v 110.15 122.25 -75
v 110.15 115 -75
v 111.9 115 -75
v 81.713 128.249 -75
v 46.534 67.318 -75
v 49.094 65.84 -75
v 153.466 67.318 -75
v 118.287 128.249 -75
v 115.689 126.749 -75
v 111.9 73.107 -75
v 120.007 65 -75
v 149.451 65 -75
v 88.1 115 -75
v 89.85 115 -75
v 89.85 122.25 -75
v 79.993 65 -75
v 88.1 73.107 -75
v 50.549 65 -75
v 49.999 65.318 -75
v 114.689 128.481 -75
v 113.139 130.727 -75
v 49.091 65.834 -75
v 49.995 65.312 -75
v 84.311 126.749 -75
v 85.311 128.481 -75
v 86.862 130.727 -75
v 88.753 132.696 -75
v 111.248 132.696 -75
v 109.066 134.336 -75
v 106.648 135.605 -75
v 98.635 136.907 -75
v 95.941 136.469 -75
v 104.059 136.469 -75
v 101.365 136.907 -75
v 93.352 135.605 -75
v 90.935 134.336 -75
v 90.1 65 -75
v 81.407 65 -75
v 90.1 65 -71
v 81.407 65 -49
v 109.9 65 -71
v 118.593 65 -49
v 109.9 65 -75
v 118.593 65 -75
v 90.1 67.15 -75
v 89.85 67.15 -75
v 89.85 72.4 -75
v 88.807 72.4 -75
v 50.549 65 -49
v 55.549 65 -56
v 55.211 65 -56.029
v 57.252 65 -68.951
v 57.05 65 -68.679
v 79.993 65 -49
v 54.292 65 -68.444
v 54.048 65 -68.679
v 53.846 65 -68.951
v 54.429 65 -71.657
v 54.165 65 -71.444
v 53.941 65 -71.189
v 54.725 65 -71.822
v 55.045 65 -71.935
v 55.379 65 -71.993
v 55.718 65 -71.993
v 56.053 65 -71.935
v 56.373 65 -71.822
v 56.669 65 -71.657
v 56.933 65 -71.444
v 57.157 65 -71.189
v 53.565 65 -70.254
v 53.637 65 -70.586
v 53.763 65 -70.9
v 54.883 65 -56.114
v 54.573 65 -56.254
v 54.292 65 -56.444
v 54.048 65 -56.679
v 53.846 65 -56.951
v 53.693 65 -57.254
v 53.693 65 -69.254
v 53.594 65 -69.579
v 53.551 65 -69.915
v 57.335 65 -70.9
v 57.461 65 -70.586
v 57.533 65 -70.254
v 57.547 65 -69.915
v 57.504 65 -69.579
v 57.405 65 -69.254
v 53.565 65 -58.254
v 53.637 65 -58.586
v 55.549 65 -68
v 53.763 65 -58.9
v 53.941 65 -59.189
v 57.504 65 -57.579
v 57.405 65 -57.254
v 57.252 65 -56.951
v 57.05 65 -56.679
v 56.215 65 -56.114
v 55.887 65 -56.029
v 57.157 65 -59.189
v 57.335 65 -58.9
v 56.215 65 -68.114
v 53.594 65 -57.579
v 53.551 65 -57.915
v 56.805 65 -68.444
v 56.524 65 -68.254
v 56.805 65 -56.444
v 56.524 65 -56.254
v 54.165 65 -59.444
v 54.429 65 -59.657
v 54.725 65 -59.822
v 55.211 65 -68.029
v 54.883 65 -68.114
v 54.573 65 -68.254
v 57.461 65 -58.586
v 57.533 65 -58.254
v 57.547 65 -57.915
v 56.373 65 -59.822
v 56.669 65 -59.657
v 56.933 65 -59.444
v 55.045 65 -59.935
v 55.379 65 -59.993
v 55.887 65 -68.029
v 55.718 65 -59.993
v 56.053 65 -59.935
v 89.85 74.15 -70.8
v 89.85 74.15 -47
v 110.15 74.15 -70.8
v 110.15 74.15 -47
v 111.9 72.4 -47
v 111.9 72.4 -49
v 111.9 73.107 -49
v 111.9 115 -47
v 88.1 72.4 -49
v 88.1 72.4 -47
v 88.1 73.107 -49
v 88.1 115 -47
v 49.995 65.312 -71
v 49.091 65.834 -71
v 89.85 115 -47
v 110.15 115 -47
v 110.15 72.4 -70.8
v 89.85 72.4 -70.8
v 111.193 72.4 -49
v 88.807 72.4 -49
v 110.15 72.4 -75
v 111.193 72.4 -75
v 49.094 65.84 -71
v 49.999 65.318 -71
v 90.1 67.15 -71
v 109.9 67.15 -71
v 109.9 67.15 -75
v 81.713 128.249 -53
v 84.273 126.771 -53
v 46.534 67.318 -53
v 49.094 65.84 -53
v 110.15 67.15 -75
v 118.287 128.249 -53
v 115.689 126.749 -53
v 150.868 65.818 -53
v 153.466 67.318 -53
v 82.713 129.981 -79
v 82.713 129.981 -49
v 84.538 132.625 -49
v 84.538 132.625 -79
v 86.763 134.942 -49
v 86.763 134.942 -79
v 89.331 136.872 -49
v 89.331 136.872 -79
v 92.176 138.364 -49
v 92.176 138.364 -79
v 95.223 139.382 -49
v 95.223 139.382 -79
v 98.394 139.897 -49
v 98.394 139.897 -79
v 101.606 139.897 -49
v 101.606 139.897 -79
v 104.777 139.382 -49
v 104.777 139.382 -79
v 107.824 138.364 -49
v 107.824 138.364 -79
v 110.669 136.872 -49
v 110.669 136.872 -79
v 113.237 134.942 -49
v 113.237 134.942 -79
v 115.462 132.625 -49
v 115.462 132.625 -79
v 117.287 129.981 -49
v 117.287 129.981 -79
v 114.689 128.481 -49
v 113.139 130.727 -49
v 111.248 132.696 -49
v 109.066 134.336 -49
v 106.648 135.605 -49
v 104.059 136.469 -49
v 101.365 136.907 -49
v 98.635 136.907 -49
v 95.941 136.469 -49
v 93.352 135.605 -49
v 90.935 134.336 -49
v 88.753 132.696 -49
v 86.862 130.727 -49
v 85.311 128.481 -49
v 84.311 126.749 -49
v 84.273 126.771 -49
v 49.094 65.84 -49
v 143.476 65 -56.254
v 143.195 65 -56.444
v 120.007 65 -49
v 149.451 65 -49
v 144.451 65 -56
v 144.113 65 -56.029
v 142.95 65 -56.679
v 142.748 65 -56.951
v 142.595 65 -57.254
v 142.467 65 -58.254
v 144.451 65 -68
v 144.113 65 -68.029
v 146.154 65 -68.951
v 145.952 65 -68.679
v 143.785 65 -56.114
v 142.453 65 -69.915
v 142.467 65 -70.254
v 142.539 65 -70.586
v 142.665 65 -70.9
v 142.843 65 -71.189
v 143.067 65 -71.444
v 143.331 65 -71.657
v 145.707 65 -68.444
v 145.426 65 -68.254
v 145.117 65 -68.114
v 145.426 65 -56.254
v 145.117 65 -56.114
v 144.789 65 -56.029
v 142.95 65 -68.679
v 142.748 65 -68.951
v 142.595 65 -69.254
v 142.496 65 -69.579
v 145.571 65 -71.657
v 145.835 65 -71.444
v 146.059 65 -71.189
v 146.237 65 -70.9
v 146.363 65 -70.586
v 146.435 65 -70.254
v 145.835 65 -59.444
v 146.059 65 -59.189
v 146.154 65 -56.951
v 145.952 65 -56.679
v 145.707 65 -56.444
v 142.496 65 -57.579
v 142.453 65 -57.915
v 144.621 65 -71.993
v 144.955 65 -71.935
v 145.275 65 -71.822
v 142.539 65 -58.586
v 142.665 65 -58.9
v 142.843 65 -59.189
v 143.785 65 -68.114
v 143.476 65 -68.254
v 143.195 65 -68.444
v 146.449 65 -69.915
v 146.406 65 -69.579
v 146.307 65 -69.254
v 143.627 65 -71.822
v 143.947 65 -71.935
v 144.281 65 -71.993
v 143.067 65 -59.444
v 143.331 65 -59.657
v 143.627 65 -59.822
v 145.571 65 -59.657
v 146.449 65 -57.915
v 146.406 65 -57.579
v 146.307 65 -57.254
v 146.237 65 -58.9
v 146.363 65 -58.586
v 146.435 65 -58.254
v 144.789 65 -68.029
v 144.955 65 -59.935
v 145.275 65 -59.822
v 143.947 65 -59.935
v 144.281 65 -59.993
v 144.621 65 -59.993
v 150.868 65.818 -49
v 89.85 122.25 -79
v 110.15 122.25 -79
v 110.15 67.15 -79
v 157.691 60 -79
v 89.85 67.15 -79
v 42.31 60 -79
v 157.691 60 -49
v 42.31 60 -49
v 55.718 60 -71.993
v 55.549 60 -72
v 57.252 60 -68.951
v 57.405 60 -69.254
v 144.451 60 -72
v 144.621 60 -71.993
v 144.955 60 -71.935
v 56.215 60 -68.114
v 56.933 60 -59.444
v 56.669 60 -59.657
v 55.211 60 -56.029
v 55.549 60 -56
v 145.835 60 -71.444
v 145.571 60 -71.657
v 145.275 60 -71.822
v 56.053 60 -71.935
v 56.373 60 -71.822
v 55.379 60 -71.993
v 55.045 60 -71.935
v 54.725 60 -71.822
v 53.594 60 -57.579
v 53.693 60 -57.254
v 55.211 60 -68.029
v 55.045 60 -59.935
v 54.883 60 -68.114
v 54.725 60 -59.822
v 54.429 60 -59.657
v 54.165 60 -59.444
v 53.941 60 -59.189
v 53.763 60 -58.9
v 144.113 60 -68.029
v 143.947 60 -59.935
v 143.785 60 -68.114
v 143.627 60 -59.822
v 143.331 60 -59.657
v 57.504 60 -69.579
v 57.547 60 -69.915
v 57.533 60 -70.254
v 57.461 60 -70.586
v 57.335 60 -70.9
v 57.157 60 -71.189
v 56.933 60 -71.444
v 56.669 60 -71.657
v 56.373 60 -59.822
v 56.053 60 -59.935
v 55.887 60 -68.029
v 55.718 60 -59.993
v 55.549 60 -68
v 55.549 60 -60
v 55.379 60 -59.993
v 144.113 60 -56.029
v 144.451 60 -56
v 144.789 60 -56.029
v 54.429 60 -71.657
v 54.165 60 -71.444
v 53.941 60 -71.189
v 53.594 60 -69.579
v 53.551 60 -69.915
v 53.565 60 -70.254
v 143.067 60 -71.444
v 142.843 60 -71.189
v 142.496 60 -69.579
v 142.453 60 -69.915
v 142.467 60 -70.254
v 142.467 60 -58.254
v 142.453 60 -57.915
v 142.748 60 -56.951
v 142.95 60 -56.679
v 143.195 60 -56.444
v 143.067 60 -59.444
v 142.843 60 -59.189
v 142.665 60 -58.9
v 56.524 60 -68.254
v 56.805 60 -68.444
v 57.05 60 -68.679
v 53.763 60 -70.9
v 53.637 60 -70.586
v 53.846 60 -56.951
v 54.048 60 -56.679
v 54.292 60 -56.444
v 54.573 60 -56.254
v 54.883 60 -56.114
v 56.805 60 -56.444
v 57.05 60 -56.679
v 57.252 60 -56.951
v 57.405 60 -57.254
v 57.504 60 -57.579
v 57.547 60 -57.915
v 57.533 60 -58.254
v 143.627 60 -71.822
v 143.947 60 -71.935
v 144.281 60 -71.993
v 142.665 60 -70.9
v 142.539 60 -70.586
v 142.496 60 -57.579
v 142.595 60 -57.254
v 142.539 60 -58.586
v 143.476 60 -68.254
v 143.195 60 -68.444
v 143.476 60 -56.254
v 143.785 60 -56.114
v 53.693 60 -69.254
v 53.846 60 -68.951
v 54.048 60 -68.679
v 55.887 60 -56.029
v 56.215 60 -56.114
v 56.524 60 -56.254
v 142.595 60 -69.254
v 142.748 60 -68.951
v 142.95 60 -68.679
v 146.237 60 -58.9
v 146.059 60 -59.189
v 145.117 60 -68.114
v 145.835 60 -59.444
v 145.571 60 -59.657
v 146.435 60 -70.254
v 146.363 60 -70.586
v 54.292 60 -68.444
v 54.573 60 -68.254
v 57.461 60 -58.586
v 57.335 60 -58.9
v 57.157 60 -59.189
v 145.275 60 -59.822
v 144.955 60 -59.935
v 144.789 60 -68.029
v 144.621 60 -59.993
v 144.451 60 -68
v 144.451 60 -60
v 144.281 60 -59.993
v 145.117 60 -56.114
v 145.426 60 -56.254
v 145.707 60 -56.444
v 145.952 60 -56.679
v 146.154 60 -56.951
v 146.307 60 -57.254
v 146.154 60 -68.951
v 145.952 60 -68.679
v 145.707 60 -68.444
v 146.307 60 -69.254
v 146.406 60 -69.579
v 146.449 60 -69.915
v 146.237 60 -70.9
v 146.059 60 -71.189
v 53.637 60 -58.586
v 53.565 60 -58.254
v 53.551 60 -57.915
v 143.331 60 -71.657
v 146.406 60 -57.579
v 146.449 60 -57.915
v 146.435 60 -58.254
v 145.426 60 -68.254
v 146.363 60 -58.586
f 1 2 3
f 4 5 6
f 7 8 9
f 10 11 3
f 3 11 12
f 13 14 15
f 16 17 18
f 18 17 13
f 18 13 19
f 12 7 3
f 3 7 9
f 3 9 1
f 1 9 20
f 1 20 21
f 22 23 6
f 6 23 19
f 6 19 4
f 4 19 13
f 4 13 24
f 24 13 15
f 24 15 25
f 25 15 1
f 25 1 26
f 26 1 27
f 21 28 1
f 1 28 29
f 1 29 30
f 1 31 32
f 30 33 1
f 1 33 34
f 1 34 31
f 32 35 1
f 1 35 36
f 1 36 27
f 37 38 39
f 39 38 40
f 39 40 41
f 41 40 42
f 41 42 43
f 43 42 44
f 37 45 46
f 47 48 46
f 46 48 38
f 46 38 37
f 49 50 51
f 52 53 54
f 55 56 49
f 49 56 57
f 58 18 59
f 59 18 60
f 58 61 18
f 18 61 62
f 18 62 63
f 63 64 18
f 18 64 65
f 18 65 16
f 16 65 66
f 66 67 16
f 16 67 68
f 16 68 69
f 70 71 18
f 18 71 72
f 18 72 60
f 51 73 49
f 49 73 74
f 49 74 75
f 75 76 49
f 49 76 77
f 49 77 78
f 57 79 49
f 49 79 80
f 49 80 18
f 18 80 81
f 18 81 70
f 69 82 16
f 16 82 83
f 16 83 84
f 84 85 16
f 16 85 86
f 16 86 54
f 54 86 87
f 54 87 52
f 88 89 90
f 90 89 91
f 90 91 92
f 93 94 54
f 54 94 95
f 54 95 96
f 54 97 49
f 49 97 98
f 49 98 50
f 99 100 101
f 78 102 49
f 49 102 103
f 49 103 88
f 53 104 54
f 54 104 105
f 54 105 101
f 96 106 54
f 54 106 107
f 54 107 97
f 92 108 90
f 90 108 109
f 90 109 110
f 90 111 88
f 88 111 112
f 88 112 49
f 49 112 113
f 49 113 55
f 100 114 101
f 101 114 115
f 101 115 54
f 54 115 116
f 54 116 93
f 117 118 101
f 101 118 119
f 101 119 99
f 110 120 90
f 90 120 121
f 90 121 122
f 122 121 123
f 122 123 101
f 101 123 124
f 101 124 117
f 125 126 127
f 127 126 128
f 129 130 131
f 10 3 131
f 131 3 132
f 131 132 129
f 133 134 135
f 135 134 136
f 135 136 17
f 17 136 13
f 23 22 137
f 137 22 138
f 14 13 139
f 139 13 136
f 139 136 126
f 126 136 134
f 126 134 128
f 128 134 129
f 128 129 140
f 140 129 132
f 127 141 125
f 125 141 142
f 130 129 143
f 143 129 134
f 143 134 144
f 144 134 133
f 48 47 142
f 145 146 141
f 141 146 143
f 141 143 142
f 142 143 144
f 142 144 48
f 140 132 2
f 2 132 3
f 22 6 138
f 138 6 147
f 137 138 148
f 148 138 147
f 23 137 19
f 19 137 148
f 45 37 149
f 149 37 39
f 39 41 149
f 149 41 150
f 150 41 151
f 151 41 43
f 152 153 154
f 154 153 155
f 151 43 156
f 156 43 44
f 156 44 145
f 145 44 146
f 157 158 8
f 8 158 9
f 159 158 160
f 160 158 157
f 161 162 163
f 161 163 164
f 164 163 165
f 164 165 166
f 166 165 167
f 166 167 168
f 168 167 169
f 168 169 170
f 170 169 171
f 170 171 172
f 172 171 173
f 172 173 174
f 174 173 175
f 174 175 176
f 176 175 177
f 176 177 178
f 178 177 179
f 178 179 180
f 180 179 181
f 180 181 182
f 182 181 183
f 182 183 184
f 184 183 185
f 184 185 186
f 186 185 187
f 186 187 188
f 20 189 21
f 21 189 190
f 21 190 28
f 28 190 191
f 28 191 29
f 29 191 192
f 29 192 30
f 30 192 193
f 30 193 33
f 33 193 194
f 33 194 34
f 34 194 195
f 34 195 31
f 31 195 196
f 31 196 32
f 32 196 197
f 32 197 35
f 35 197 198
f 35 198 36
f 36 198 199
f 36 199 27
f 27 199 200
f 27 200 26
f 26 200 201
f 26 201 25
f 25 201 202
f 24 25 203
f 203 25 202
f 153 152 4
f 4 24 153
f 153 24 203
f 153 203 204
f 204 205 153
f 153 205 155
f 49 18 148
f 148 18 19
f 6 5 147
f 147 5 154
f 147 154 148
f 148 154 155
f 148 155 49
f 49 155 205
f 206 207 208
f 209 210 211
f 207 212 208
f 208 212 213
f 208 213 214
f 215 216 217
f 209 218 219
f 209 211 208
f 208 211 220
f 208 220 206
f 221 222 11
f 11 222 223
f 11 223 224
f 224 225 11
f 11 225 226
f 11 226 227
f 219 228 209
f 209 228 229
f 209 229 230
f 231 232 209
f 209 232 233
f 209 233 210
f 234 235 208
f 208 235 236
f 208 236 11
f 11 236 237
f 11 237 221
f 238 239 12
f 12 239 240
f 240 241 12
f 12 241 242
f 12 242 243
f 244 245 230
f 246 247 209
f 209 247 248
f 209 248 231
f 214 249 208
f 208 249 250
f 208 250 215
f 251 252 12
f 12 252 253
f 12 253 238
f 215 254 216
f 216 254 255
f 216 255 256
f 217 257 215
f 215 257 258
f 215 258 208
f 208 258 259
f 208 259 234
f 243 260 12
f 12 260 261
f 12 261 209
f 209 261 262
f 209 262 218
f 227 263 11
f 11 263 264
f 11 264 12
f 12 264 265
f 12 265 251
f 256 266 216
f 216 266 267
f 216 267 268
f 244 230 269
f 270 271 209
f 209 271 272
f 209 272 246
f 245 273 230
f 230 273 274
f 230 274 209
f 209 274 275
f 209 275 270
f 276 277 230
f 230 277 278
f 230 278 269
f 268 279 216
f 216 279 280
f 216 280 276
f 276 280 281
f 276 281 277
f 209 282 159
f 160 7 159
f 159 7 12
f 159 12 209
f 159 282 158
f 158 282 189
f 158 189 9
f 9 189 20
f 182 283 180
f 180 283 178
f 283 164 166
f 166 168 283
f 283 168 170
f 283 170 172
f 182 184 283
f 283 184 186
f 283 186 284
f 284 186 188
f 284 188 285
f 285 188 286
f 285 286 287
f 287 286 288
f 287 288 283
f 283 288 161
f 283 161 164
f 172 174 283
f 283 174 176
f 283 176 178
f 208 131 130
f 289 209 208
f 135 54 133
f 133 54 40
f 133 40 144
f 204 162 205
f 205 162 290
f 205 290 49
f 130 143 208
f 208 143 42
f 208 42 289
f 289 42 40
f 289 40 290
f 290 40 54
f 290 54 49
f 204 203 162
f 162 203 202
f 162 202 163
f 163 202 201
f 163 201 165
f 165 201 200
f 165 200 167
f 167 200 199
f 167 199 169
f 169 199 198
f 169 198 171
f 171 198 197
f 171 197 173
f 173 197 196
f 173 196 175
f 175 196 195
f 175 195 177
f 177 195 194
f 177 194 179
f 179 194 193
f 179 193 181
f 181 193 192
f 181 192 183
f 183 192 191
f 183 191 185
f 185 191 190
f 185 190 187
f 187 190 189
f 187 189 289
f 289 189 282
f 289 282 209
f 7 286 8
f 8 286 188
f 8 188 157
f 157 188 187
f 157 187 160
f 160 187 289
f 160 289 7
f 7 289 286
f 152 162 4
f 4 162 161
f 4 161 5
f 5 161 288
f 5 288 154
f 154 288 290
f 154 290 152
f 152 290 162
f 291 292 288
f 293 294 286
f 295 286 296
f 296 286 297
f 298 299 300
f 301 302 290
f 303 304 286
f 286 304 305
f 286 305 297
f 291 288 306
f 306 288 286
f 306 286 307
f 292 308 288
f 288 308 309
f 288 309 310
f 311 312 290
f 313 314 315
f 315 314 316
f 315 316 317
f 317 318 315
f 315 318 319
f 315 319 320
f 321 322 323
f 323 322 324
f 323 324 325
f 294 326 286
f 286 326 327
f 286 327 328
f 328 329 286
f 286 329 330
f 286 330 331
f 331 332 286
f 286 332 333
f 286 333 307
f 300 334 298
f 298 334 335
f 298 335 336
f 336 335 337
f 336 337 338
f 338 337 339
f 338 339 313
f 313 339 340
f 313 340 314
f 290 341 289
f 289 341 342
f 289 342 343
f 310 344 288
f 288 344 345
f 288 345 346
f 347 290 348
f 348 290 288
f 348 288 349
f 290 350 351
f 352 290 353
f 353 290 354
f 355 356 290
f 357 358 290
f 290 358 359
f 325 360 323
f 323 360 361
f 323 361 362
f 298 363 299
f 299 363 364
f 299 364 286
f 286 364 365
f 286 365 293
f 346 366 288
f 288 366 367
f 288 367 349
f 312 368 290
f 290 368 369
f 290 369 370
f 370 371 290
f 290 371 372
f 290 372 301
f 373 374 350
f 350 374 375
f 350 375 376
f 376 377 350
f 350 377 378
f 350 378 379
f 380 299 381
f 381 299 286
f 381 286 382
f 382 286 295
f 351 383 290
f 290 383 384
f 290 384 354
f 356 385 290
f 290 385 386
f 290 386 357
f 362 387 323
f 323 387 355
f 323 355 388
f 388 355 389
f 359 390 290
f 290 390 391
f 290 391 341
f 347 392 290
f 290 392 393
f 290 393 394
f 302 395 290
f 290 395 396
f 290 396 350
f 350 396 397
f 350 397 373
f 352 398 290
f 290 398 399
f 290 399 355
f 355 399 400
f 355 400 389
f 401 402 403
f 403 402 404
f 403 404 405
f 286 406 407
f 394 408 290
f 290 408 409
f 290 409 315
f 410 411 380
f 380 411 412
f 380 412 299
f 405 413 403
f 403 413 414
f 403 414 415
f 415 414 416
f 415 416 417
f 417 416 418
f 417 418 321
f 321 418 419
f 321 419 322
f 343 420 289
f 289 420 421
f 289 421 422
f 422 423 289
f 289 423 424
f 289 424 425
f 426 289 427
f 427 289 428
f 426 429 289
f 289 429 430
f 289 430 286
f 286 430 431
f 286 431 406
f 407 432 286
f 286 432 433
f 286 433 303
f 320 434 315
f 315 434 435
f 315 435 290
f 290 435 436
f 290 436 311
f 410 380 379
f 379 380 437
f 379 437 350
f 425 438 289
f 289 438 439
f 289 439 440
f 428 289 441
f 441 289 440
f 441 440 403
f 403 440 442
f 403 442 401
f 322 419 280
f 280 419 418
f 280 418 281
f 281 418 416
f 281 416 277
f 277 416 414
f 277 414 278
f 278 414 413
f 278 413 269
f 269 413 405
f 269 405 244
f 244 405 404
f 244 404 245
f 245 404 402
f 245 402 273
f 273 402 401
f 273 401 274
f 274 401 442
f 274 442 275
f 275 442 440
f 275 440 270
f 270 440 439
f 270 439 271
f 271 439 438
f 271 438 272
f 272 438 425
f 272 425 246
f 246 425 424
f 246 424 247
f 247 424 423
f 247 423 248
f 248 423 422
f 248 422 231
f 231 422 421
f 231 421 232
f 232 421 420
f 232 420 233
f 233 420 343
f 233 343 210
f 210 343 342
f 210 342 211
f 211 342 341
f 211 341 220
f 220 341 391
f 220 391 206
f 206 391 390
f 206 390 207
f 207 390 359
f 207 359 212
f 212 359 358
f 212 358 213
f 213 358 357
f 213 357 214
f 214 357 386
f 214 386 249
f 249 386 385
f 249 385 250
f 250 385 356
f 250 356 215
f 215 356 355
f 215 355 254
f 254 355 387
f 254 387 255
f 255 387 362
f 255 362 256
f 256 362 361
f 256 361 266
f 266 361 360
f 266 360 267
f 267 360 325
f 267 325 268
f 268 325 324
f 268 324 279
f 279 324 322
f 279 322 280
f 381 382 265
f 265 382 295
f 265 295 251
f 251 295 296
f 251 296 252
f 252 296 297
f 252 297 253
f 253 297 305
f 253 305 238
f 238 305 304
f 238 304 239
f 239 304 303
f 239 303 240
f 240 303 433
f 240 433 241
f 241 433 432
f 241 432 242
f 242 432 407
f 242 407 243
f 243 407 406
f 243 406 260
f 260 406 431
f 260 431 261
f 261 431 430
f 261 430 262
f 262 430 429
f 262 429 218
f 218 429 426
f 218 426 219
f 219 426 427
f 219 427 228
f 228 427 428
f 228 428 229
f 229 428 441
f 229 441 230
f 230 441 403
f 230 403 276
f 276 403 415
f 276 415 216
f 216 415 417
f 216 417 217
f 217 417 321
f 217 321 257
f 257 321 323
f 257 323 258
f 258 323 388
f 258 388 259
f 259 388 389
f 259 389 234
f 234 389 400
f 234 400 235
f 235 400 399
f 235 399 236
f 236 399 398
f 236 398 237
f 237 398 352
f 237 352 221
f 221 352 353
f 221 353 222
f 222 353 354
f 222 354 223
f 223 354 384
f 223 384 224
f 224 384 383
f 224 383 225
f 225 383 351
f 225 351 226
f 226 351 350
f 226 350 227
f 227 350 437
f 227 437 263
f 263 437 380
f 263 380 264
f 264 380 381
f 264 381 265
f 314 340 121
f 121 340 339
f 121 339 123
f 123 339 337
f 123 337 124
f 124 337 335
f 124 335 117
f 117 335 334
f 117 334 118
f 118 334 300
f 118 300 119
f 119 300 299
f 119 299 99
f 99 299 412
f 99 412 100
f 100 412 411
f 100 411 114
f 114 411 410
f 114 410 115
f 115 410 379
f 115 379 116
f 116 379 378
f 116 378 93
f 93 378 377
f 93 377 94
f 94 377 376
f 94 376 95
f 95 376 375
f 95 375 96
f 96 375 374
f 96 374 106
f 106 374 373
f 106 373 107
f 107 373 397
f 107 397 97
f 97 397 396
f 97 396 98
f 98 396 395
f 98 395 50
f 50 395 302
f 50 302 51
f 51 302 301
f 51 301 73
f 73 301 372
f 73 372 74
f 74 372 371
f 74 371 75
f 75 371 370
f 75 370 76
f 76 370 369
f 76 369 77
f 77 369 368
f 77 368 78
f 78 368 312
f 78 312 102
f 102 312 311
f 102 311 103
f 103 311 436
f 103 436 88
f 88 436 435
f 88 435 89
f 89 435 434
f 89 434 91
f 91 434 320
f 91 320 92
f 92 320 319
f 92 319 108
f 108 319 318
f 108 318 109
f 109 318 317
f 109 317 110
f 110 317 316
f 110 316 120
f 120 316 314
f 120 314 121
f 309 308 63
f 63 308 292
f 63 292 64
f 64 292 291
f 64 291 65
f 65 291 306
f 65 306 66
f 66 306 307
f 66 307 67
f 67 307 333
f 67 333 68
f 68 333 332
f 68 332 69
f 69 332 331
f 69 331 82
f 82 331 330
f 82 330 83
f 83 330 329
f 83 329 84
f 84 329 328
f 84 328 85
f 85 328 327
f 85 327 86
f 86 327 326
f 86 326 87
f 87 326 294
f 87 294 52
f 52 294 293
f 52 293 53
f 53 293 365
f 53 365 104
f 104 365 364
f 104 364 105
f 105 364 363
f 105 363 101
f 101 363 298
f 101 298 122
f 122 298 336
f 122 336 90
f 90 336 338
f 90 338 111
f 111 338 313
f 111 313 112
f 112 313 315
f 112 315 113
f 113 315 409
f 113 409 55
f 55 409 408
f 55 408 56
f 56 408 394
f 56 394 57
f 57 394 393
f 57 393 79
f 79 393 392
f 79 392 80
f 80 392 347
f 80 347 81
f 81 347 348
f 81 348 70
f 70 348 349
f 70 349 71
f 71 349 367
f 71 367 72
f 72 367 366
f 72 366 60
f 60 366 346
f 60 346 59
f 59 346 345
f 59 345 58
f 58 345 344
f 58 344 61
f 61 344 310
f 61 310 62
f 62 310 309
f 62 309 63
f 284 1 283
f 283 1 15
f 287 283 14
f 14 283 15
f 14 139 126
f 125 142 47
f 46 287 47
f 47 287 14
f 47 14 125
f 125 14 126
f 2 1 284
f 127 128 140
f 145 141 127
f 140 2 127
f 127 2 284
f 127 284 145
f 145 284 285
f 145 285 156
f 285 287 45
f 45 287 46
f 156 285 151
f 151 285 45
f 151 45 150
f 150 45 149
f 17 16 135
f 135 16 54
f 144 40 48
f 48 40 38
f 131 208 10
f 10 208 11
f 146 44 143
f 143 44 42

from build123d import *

# Parameters (mm, degrees)
SKETCH2_W                 = 200
SKETCH2_H                 = 200
BOSS_EXTRUDE2_DEPTH       = 60
BOSS_EXTRUDE3_START       = -38
BOSS_EXTRUDE3_DEPTH       = 41
SKETCH5_W                 = 180
SKETCH5_H                 = 180
CUT_EXTRUDE2_DEPTH        = 50
BOSS_EXTRUDE4_START       = -51.2
BOSS_EXTRUDE4_DEPTH       = 30
CUT_EXTRUDE3_DEPTH        = 35
SKETCH9_R                 = 5
CUT_EXTRUDE4_DEPTH        = 10
CUT_EXTRUDE6_DEPTH        = 26
SKETCH11_W                = 120
SKETCH11_H                = 10
CUT_EXTRUDE7_DEPTH        = 26
SKETCH12_W                = 180
SKETCH12_H                = 50
CUT_EXTRUDE8_DEPTH        = 200
SKETCH13_W                = 180
SKETCH13_H                = 50
CUT_EXTRUDE9_DEPTH        = 200
SKETCH15_W                = 19.8
SKETCH15_H                = 40.6
SKETCH15_R                = 4.016151872
CUT_EXTRUDE11_DEPTH       = 10
BOSS_EXTRUDE5_DEPTH       = 26
SKETCH20_W                = 19.8
SKETCH20_H                = 7
CUT_EXTRUDE14_DEPTH       = 8.2
SKETCH22_W                = 22
SKETCH22_H                = 68.38628635
SKETCH22_W_2              = 33
SKETCH22_H_2              = 70.357034464
CUT_EXTRUDE16_DEPTH       = 6
CUT_EXTRUDE17_DEPTH       = 150
SKETCH24_W                = 190
SKETCH24_H                = 55
CUT_EXTRUDE18_DEPTH       = 200
SKETCH41_W                = 200
SKETCH41_H                = 200
SKETCH41_W_2              = 115.381197846
SKETCH41_H_2              = 110.8
CUT_EXTRUDE25_DEPTH       = 100
CUT_EXTRUDE26_DEPTH       = 26
SKETCH43_R                = 85
BOSS_EXTRUDE9_DEPTH       = 5
CUT_EXTRUDE27_DEPTH       = 11
BOSS_EXTRUDE10_DEPTH      = 4
BOSS_EXTRUDE11_DEPTH      = 24
BOSS_EXTRUDE12_DEPTH      = 26
BOSS_EXTRUDE14_DEPTH      = 4
CUT_EXTRUDE29_DEPTH       = 18
CUT_EXTRUDE30_DEPTH       = 2
CUT_EXTRUDE31_DEPTH       = 2
SKETCH55_W                = 19.8
SKETCH55_H                = 2.410200662
BOSS_EXTRUDE16_DEPTH      = 4
SKETCH56_W                = 22
SKETCH56_H                = 70.356823689
CUT_EXTRUDE32_DEPTH       = 4
BOSS_EXTRUDE17_DEPTH      = 26
BOSS_EXTRUDE18_DEPTH      = 26
BOSS_EXTRUDE19_START      = 170
BOSS_EXTRUDE19_DEPTH      = 10
SKETCH60_R                = 2.45
BOSS_EXTRUDE20_DEPTH      = 9
FILLET1_R                 = 0.3
CUT_EXTRUDE33_START       = -1
SKETCH61_R                = 2.45
SKETCH61_R_2              = 2.375
CUT_EXTRUDE33_DEPTH       = 5.2
FILLET2_R                 = 2
BOSS_EXTRUDE21_START      = 140
BOSS_EXTRUDE21_DEPTH      = 10
SKETCH63_R                = 2.45
BOSS_EXTRUDE22_DEPTH      = 9
FILLET3_R                 = 0.3
FILLET4_R                 = 2
CUT_EXTRUDE34_START       = -1
SKETCH64_R                = 2.45
SKETCH64_R_2              = 2.375
CUT_EXTRUDE34_DEPTH       = 5.2
SKETCH67_R                = 95.168377016
SKETCH67_R_2              = 84.75
CUT_EXTRUDE36_DEPTH       = 5
CUT_EXTRUDE37_DEPTH       = 300
CUT_EXTRUDE37_DEPTH_BACK  = 300
SKETCH70_W                = 122.930258841
SKETCH70_H                = 81.480763568
CUT_EXTRUDE39_DEPTH       = 40
F_4_0MM_DOWEL_HOLE1_D     = 4
F_4_0MM_DOWEL_HOLE1_DEPTH = 10
F_4_0MM_DOWEL_HOLE1_TIP   = 1.201721238
SKETCH75_W                = 20.3
SKETCH75_H                = 48.1
CUT_EXTRUDE40_DEPTH       = 50
SKETCH76_W                = 20.3
SKETCH76_H                = 7
CUT_EXTRUDE41_DEPTH       = 8.2
RIB2_REACH                = 214.968


with BuildPart() as part:
    # Sketch2 → Boss-Extrude2 (new body)
    with BuildSketch(Plane(origin=(0, 0, 0), x_dir=(1, 0, 0), z_dir=(0, 1, 0))):
        with Locations((100, 100)):
            Rectangle(SKETCH2_W, SKETCH2_H)
    extrude(amount=BOSS_EXTRUDE2_DEPTH)

    # Sketch3 → Boss-Extrude3 (add)
    with BuildSketch(Plane.XY.offset(BOSS_EXTRUDE3_START)):
        with BuildLine():
            Line((40, 60), (80.980762114, 130.980762114))
            ThreePointArc((80.980762114, 130.980762114), (100, 141.961524227), (119.019237886, 130.980762114))
            Line((119.019237886, 130.980762114), (160, 60))
            Line((160, 60), (40, 60))
        make_face()
    extrude(amount=-BOSS_EXTRUDE3_DEPTH)

    # Sketch5 → Cut-Extrude2 (cut)
    with BuildSketch(Plane.XZ):
        with Locations((100, -100)):
            Rectangle(SKETCH5_W, SKETCH5_H)
    extrude(amount=-CUT_EXTRUDE2_DEPTH, mode=Mode.SUBTRACT)

    # Sketch7 → Boss-Extrude4 (add)
    with BuildSketch(Plane(origin=(0, 0, -200), x_dir=(-1, 0, 0), z_dir=(0, 0, -1)).offset(BOSS_EXTRUDE4_START)):
        with BuildLine():
            Line((-160, 60), (-40, 60))
            Line((-40, 60), (-80.980762114, 130.980762114))
            ThreePointArc((-80.980762114, 130.980762114), (-100, 141.961524227), (-119.019237886, 130.980762114))
            Line((-119.019237886, 130.980762114), (-160, 60))
        make_face()
    extrude(amount=-BOSS_EXTRUDE4_DEPTH)

    # Sketch8 → Cut-Extrude3 (cut)
    with BuildSketch(Plane.XY.offset(-38)):
        with BuildLine():
            Line((48.660254038, 65), (151.339745962, 65))
            Line((151.339745962, 65), (114.689110868, 128.480762114))
            ThreePointArc((114.689110868, 128.480762114), (100, 136.961524227), (85.310889132, 128.480762114))
            Line((85.310889132, 128.480762114), (48.660254038, 65))
        make_face()
    extrude(amount=-CUT_EXTRUDE3_DEPTH, mode=Mode.SUBTRACT)

    # Sketch9 → Cut-Extrude4 (cut)
    with BuildSketch(Plane.XY.offset(-118.8)):
        with BuildLine():
            Line((95, 141.384773704), (95, 105))
            ThreePointArc((95, 105), (100, 110), (105, 105))
            Line((105, 105), (105, 141.384773704))
            ThreePointArc((105, 141.384773704), (100, 141.961524227), (95, 141.384773704))
        make_face()
        with Locations((100, 105)):
            Circle(SKETCH9_R)
    extrude(amount=-CUT_EXTRUDE4_DEPTH, mode=Mode.SUBTRACT)

    # Sketch10 → Cut-Extrude6 (cut)
    with BuildSketch(Plane(origin=(0, 0, -148.8), x_dir=(-1, 0, 0), z_dir=(0, 0, -1))):
        with BuildLine():
            Line((-110, 105), (-110, 133.700120587))
            ThreePointArc((-110, 133.700120587), (-112.617387787, 131.335555987), (-114.689110868, 128.480762114))
            Line((-114.689110868, 128.480762114), (-151.339745962, 65))
            Line((-151.339745962, 65), (-48.660254038, 65))
            Line((-48.660254038, 65), (-85.310889132, 128.480762114))
            ThreePointArc((-85.310889132, 128.480762114), (-87.382612213, 131.335555987), (-90, 133.700120587))
            Line((-90, 133.700120587), (-90, 105))
            ThreePointArc((-90, 105), (-100, 95), (-110, 105))
        make_face()
    extrude(amount=-CUT_EXTRUDE6_DEPTH, mode=Mode.SUBTRACT)

    # Sketch11 → Cut-Extrude7 (cut)
    with BuildSketch(Plane(origin=(0, 60, 0), x_dir=(1, 0, 0), z_dir=(0, 1, 0))):
        with Locations((100, 113.8)):
            Rectangle(SKETCH11_W, SKETCH11_H)
    extrude(amount=-CUT_EXTRUDE7_DEPTH, mode=Mode.SUBTRACT)

    # Sketch12 → Cut-Extrude8 (cut)
    with BuildSketch(Plane(origin=(200, 0, 0), x_dir=(0, 0, -1), z_dir=(1, 0, 0))):
        with Locations((100, 25)):
            Rectangle(SKETCH12_W, SKETCH12_H)
    extrude(amount=-CUT_EXTRUDE8_DEPTH, mode=Mode.SUBTRACT)

    # Sketch13 → Cut-Extrude9 (cut)
    with BuildSketch(Plane.XY):
        with Locations((100, 25)):
            Rectangle(SKETCH13_W, SKETCH13_H)
    extrude(amount=-CUT_EXTRUDE9_DEPTH, mode=Mode.SUBTRACT)

    # Sketch15 → Cut-Extrude11 (cut)
    with BuildSketch(Plane.XY.offset(-73)):
        with Locations((100, 94.7)):
            Rectangle(SKETCH15_W, SKETCH15_H)
        with Locations((100, 105)):
            Circle(SKETCH15_R, mode=Mode.SUBTRACT)
        with Locations((100, 105)):
            Circle(SKETCH15_R)
    extrude(amount=-CUT_EXTRUDE11_DEPTH, mode=Mode.SUBTRACT)

    # Sketch16 → Boss-Extrude5 (add)
    with BuildSketch(Plane.XY.offset(-73)):
        Polygon((88.1, 115), (88.1, 72.4), (111.9, 72.4), (111.9, 115), (109.9, 115), (109.9, 74.4), (90.1, 74.4), (90.1, 115), align=None)
    extrude(amount=BOSS_EXTRUDE5_DEPTH)

    # Sketch20 → Cut-Extrude14 (cut)
    with BuildSketch(Plane(origin=(0, 0, -79), x_dir=(-1, 0, 0), z_dir=(0, 0, -1))):
        with Locations((-100, 118.5)):
            Rectangle(SKETCH20_W, SKETCH20_H)
        with Locations((-100, 70.9)):
            Rectangle(SKETCH20_W, SKETCH20_H)
    extrude(amount=-CUT_EXTRUDE14_DEPTH, mode=Mode.SUBTRACT)

    # Sketch22 → Cut-Extrude16 (cut)
    with BuildSketch(Plane(origin=(4.019237886, -2.320508076, 0), x_dir=(0, 0, 1), z_dir=(-0.8660254037844397, 0.49999999999999806, 0))):
        with Locations((-133.8, 115.729905279)):
            Rectangle(SKETCH22_W, SKETCH22_H)
        with Locations((-58.5, 116.744531222)):
            Rectangle(SKETCH22_W_2, SKETCH22_H_2)
    extrude(amount=-CUT_EXTRUDE16_DEPTH, mode=Mode.SUBTRACT)

    # Sketch23 → Cut-Extrude17 (cut)
    with BuildSketch(Plane.XY.offset(-38)):
        with BuildLine():
            Line((43.464101615, 62), (42.309401077, 60))
            Line((42.309401077, 60), (36.951802896, 60))
            Line((36.951802896, 60), (100, 183.688158135))
            Line((100, 183.688158135), (162.604774917, 60))
            Line((162.604774917, 60), (157.690598923, 60))
            Line((157.690598923, 60), (156.535898385, 62))
            Line((156.535898385, 62), (117.287187079, 129.980762114))
            ThreePointArc((117.287187079, 129.980762114), (100, 139.961524227), (82.712812921, 129.980762114))
            Line((82.712812921, 129.980762114), (43.464101615, 62))
        make_face()
    extrude(amount=-CUT_EXTRUDE17_DEPTH, mode=Mode.SUBTRACT)

    # Sketch24 → Cut-Extrude18 (cut)
    with BuildSketch(Plane(origin=(0, 0, -200), x_dir=(-1, 0, 0), z_dir=(0, 0, -1))):
        with Locations((-100, 27.5)):
            Rectangle(SKETCH24_W, SKETCH24_H)
    extrude(amount=-CUT_EXTRUDE18_DEPTH, mode=Mode.SUBTRACT)

    # Sketch41 → Cut-Extrude25 (cut)
    with BuildSketch(Plane(origin=(0, 60, 0), x_dir=(1, 0, 0), z_dir=(0, 1, 0))):
        with Locations((100, 100)):
            Rectangle(SKETCH41_W, SKETCH41_H)
        with Locations((100, 93.4)):
            Rectangle(SKETCH41_W_2, SKETCH41_H_2, mode=Mode.SUBTRACT)
    extrude(amount=-CUT_EXTRUDE25_DEPTH, mode=Mode.SUBTRACT)


with BuildPart() as cut_extrude25_piece_1:
    # of the separate pieces the step leaves, piece 1, a body of its own (cut_extrude25_pieces)
    add(part.part.solids().sort_by_distance((42.309401077, 55, -108.8))[0])



with BuildPart() as cut_extrude25_piece_2:
    # of the separate pieces the step leaves, piece 2, a body of its own (cut_extrude25_pieces)
    add(part.part.solids().sort_by_distance((42.309401077, 55, -118.8))[0])

    # Sketch38 → Cut-Extrude26 (cut)
    with BuildSketch(Plane(origin=(0, 0, -148.8), x_dir=(-1, 0, 0), z_dir=(0, 0, -1))):
        with BuildLine():
            Line((-110, 133.700120587), (-107, 135.763853262))
            Line((-107, 135.763853262), (-107, 105))
            ThreePointArc((-107, 105), (-100, 98), (-93, 105))
            Line((-93, 105), (-93, 135.763853262))
            Line((-93, 135.763853262), (-90, 133.700120587))
            Line((-90, 133.700120587), (-90, 105))
            ThreePointArc((-90, 105), (-100, 95), (-110, 105))
            Line((-110, 105), (-110, 133.700120587))
        make_face()
    extrude(amount=-CUT_EXTRUDE26_DEPTH, mode=Mode.SUBTRACT)


with BuildPart() as cut_extrude25_piece_1_1:
    add(cut_extrude25_piece_1.part)

    add(cut_extrude25_piece_2.part)  # Boss-Extrude9 merges Cut-Extrude25 piece 2
    # Sketch43 → Boss-Extrude9 (add)
    with BuildSketch(Plane.XZ.offset(-55)):
        with Locations(Location((100, -98.8, 0), (0, 0, 270))):
            Circle(SKETCH43_R)
    extrude(amount=-BOSS_EXTRUDE9_DEPTH)

    # Sketch45 → Cut-Extrude27 (cut)
    with BuildSketch(Plane.XY.offset(-38)):
        with BuildLine():
            Line((42.309401077, 60), (82.712812921, 129.980762114))
            ThreePointArc((82.712812921, 129.980762114), (100, 139.961524227), (117.287187079, 129.980762114))
            Line((117.287187079, 129.980762114), (157.690598923, 60))
            Line((157.690598923, 60), (42.309401077, 60))
        make_face()
        with BuildLine():
            Line((151.339745962, 65), (114.689110868, 128.480762114))
            ThreePointArc((114.689110868, 128.480762114), (100, 136.961524227), (85.310889132, 128.480762114))
            Line((85.310889132, 128.480762114), (48.660254038, 65))
            Line((48.660254038, 65), (151.339745962, 65))
        make_face(mode=Mode.SUBTRACT)
    extrude(amount=-CUT_EXTRUDE27_DEPTH, mode=Mode.SUBTRACT)

    # Sketch46 → Boss-Extrude10 (add)
    with BuildSketch(Plane.XY.offset(-49)):
        Polygon((81.712812921, 128.248711306), (46.534295689, 67.317732125), (49.094273419, 65.839728294), (84.272790651, 126.770707475), align=None)
    extrude(amount=-BOSS_EXTRUDE10_DEPTH)

    # Sketch47 → Boss-Extrude11 (add)
    with BuildSketch(Plane.XY.offset(-73)):
        Polygon((49.1323719, 65.817732125), (50.548725488, 65), (48.660254038, 65), align=None)
    extrude(amount=BOSS_EXTRUDE11_DEPTH)

    # Sketch48 → Boss-Extrude12 (add)
    with BuildSketch(Plane(origin=(0, 0, -122.8), x_dir=(-1, 0, 0), z_dir=(0, 0, -1))):
        Polygon((-49.117745958, 65.792399249), (-50.490221717, 65), (-48.660254038, 65), align=None)
    extrude(amount=BOSS_EXTRUDE12_DEPTH)

    # Sketch49 → Boss-Extrude14 (add)
    with BuildSketch(Plane.XY.offset(-75)):
        Polygon((49.998397304, 65.317732125), (49.094273419, 65.839728294), (84.272790651, 126.770707475), (85.176914536, 126.248711306), align=None)
    extrude(amount=BOSS_EXTRUDE14_DEPTH)

    # Sketch52 → Cut-Extrude29 (cut)
    with BuildSketch(Plane(origin=(0, 0, -148.8), x_dir=(-1, 0, 0), z_dir=(0, 0, -1))):
        with BuildLine():
            Line((-93, 135.763853262), (-93, 105))
            ThreePointArc((-93, 105), (-100, 98), (-107, 105))
            Line((-107, 105), (-107, 135.763853262))
            ThreePointArc((-107, 135.763853262), (-100, 137.248161341), (-93, 135.763853262))
        make_face()
    extrude(amount=-CUT_EXTRUDE29_DEPTH, mode=Mode.SUBTRACT)

    # Sketch53 → Cut-Extrude30 (cut)
    with BuildSketch(Plane.XY.offset(-71)):
        Polygon((85.176914536, 126.248711306), (84.272790651, 126.770707475), (49.090707581, 65.833552081), (49.994831466, 65.311555913), align=None)
    extrude(amount=-CUT_EXTRUDE30_DEPTH, mode=Mode.SUBTRACT)

    # Sketch54 → Cut-Extrude31 (cut)
    with BuildSketch(Plane.XY.offset(-73)):
        with BuildLine():
            Line((49.090707581, 65.833552081), (49.994831466, 65.311555913))
            Line((49.994831466, 65.311555913), (49.998397304, 65.317732125))
            Line((49.998397304, 65.317732125), (50.548725488, 65))
            Line((50.548725488, 65), (151.339745962, 65))
            Line((151.339745962, 65), (114.689110868, 128.480762114))
            ThreePointArc((114.689110868, 128.480762114), (100, 136.961524227), (85.310889132, 128.480762114))
            Line((85.310889132, 128.480762114), (84.310889132, 126.748711306))
            Line((84.310889132, 126.748711306), (84.272790651, 126.770707475))
            Line((84.272790651, 126.770707475), (49.094273419, 65.839728294))
            Line((49.094273419, 65.839728294), (49.090707581, 65.833552081))
        make_face()
        Polygon((90.1, 122), (109.9, 122), (109.9, 115), (111.9, 115), (111.9, 72.4), (109.9, 72.4), (109.9, 67.4), (90.1, 67.4), (90.1, 72.4), (88.1, 72.4), (88.1, 115), (90.1, 115), align=None, mode=Mode.SUBTRACT)
    extrude(amount=-CUT_EXTRUDE31_DEPTH, mode=Mode.SUBTRACT)

    # Sketch55 → Boss-Extrude16 (add)
    with BuildSketch(Plane.XY.offset(-75)):
        with Locations((100, 66.194899669)):
            Rectangle(SKETCH55_W, SKETCH55_H)
    extrude(amount=BOSS_EXTRUDE16_DEPTH)

    # Sketch56 → Cut-Extrude32 (cut)
    with BuildSketch(Plane(origin=(144.248711306, 83.282032303, 0), x_dir=(0, 0, -1), z_dir=(0.8660254037844362, 0.5000000000000044, 0))):
        with Locations((64, 16.744636609)):
            Rectangle(SKETCH56_W, SKETCH56_H)
        with Locations((133.8, 16.744636609)):
            Rectangle(SKETCH56_W, SKETCH56_H)
    extrude(amount=-CUT_EXTRUDE32_DEPTH, mode=Mode.SUBTRACT)

    # Sketch57 → Boss-Extrude17 (add)
    with BuildSketch(Plane.XY.offset(-75)):
        Polygon((150.867522712, 65.817914662), (149.450852961, 65), (151.339745962, 65), align=None)
    extrude(amount=BOSS_EXTRUDE17_DEPTH)

    # Sketch58 → Boss-Extrude18 (add)
    with BuildSketch(Plane(origin=(0, 0, -122.8), x_dir=(-1, 0, 0), z_dir=(0, 0, -1))):
        Polygon((-150.867522712, 65.817914662), (-151.339745962, 65), (-149.450852961, 65), align=None)
    extrude(amount=BOSS_EXTRUDE18_DEPTH)

    # Sketch59 → Boss-Extrude19 (add)
    with BuildSketch(Plane(origin=(0, 0, 0), x_dir=(0, 0, -1), z_dir=(1, 0, 0)).offset(BOSS_EXTRUDE19_START)):
        with BuildLine():
            Line((81.4, 60), (94.15, 72.75))
            ThreePointArc((94.15, 72.75), (98.9, 74.717514421), (103.65, 72.75))
            Line((103.65, 72.75), (116.4, 60))
            Line((116.4, 60), (81.4, 60))
        make_face()
        with BuildLine():
            Line((81.4, 55), (116.4, 55))
            Line((116.4, 55), (103.65, 42.25))
            ThreePointArc((103.65, 42.25), (98.9, 40.282485579), (94.15, 42.25))
            Line((94.15, 42.25), (81.4, 55))
        make_face()
    extrude(amount=BOSS_EXTRUDE19_DEPTH)

    # Sketch60 → Boss-Extrude20 (add)
    with BuildSketch(Plane(origin=(180, 0, 0), x_dir=(0, 0, -1), z_dir=(1, 0, 0))):
        with Locations(Location((98.9, 70, 0), (0, 0, 180))):
            Circle(SKETCH60_R)
        with Locations(Location((98.9, 45, 0), (0, 0, 180))):
            Circle(SKETCH60_R)
    extrude(amount=BOSS_EXTRUDE20_DEPTH)

    # Fillet1
    fillet1_edges = [cut_extrude25_piece_1_1.edges().sort_by_distance(p)[0] for p in [
        (189, 70, -101.35),
        (189, 45, -101.35),
    ]]
    fillet(fillet1_edges, radius=FILLET1_R)

    # Sketch61 → Cut-Extrude33 (cut)
    with BuildSketch(Plane(origin=(189, 0, 0), x_dir=(0, 0, -1), z_dir=(1, 0, 0)).offset(CUT_EXTRUDE33_START)):
        with Locations(Location((98.9, 70, 0), (0, 0, 180))):
            Circle(SKETCH61_R)
        with Locations((98.9, 70)):
            Circle(SKETCH61_R_2, mode=Mode.SUBTRACT)
        with Locations(Location((98.9, 45, 0), (0, 0, 180))):
            Circle(SKETCH61_R)
        with Locations(Location((98.9, 45, 0), (0, 0, 180))):
            Circle(SKETCH61_R_2, mode=Mode.SUBTRACT)
    extrude(amount=-CUT_EXTRUDE33_DEPTH, mode=Mode.SUBTRACT)

    # Fillet2
    fillet2_edges = [cut_extrude25_piece_1_1.edges().sort_by_distance(p)[0] for p in [
        (180, 70, -101.35),
        (180, 45, -101.35),
    ]]
    fillet(fillet2_edges, radius=FILLET2_R)

    # Sketch62 → Boss-Extrude21 (add)
    with BuildSketch(Plane.ZY.offset(-170).offset(BOSS_EXTRUDE21_START)):
        with BuildLine():
            Line((-81.4, 55), (-94.15, 42.25))
            ThreePointArc((-94.15, 42.25), (-98.9, 40.282485579), (-103.65, 42.25))
            Line((-103.65, 42.25), (-116.4, 55))
            Line((-116.4, 55), (-81.4, 55))
        make_face()
    extrude(amount=BOSS_EXTRUDE21_DEPTH)

    # Sketch63 → Boss-Extrude22 (add)
    with BuildSketch(Plane.ZY.offset(-20)):
        with Locations((-98.9, 45)):
            Circle(SKETCH63_R)
    extrude(amount=BOSS_EXTRUDE22_DEPTH)

    # Fillet3
    fillet3_edges = [cut_extrude25_piece_1_1.edges().sort_by_distance(p)[0] for p in [
        (11, 45, -101.35),
    ]]
    fillet(fillet3_edges, radius=FILLET3_R)

    # Fillet4
    fillet4_edges = [cut_extrude25_piece_1_1.edges().sort_by_distance(p)[0] for p in [
        (20, 45, -101.35),
    ]]
    fillet(fillet4_edges, radius=FILLET4_R)

    # Sketch64 → Cut-Extrude34 (cut)
    with BuildSketch(Plane.ZY.offset(-11).offset(CUT_EXTRUDE34_START)):
        with Locations((-98.9, 45)):
            Circle(SKETCH64_R)
        with Locations((-98.9, 45)):
            Circle(SKETCH64_R_2, mode=Mode.SUBTRACT)
    extrude(amount=-CUT_EXTRUDE34_DEPTH, mode=Mode.SUBTRACT)

    # Sketch67 → Cut-Extrude36 (cut)
    with BuildSketch(Plane(origin=(0, 60, 0), x_dir=(1, 0, 0), z_dir=(0, 1, 0))):
        with Locations((100, 98.8)):
            Circle(SKETCH67_R)
        with Locations(Location((100, 98.8, 0), (0, 0, 270))):
            Circle(SKETCH67_R_2, mode=Mode.SUBTRACT)
    extrude(amount=-CUT_EXTRUDE36_DEPTH, mode=Mode.SUBTRACT)

    # Sketch69 → Cut-Extrude37 (cut, two sides)
    with BuildSketch(Plane.XY.offset(-49)) as cut_extrude37_sk:
        Polygon((215.911879912, 60), (228.126422398, 60), (228.126422398, 82.352259546), (166.655319243, 82.352259546), (166.655319243, 60), (-1.892498908, 60), (-1.892498908, 17.905538861), (184.75, 17.905538861), (184.75, 13.056821612), (215.911879912, 13.056821612), align=None)
    extrude(amount=CUT_EXTRUDE37_DEPTH, mode=Mode.SUBTRACT)
    extrude(cut_extrude37_sk.sketch, amount=-CUT_EXTRUDE37_DEPTH_BACK, mode=Mode.SUBTRACT)


with BuildPart() as cut_extrude37_piece_1:
    # of the separate pieces the step leaves, piece 1, a body of its own (cut_extrude37_pieces)
    add(cut_extrude25_piece_1_1.part.solids().sort_by_distance((117.287187079, 129.980762114, -49))[0])

    # Ø4.0mm Dowel Hole1
    with Locations(Plane(origin=(0, 65, 0), x_dir=(1, 0, 0), z_dir=(0, 1, 0))):
        with Locations((55.548725488, 70), (55.548725488, 58), (144.450852961, 70), (144.450852961, 58)):
            Hole(F_4_0MM_DOWEL_HOLE1_D / 2, depth=F_4_0MM_DOWEL_HOLE1_DEPTH)
            with Locations((0, 0, -(F_4_0MM_DOWEL_HOLE1_DEPTH + F_4_0MM_DOWEL_HOLE1_TIP / 2))):  # 118° drill point
                Cone(0, F_4_0MM_DOWEL_HOLE1_D / 2, F_4_0MM_DOWEL_HOLE1_TIP, mode=Mode.SUBTRACT)

    # Sketch75 → Cut-Extrude40 (cut)
    with BuildSketch(Plane(origin=(0, 0, -79), x_dir=(-1, 0, 0), z_dir=(0, 0, -1))):
        with Locations((-100, 98.2)):
            Rectangle(SKETCH75_W, SKETCH75_H)
    extrude(amount=-CUT_EXTRUDE40_DEPTH, mode=Mode.SUBTRACT)

    # Sketch76 → Cut-Extrude41 (cut)
    with BuildSketch(Plane(origin=(0, 0, -79), x_dir=(-1, 0, 0), z_dir=(0, 0, -1))):
        with Locations((-100, 70.65)):
            Rectangle(SKETCH76_W, SKETCH76_H)
    extrude(amount=-CUT_EXTRUDE41_DEPTH, mode=Mode.SUBTRACT)

    # Sketch78 walls → Rib2 (add, up to next)
    with BuildSketch(Plane.XY.offset(-49), mode=Mode.PRIVATE) as rib2_sk1:
        Polygon((239.044976209, 224.05208299), (-70.95208299, -85.944976209), (-70.244976209, -86.65208299), (239.75208299, 223.344976209), align=None)
    rib2_tool1 = extrude(rib2_sk1.sketch, amount=-RIB2_REACH, mode=Mode.PRIVATE) - cut_extrude37_piece_1.part
    # Sketch78 walls → Rib2 (add, up to next)
    with BuildSketch(Plane.XY.offset(-49), mode=Mode.PRIVATE) as rib2_sk2:
        Polygon((-39.75208299, 223.344976209), (270.244976209, -86.65208299), (270.95208299, -85.944976209), (-39.044976209, 224.05208299), align=None)
    rib2_tool2 = extrude(rib2_sk2.sketch, amount=-RIB2_REACH, mode=Mode.PRIVATE) - cut_extrude37_piece_1.part
    add(rib2_tool1.solids().sort_by_distance((84.4, 68.7, -49))[0])
    add(rib2_tool2.solids().sort_by_distance((115.6, 68.7, -49))[0])


with BuildPart() as cut_extrude37_piece_2:
    # of the separate pieces the step leaves, piece 2, a body of its own (cut_extrude37_pieces)
    add(cut_extrude25_piece_1_1.part.solids().sort_by_distance((42.309401077, 60, -118.8))[0])

    # Sketch70 → Cut-Extrude39 (cut)
    with BuildSketch(Plane(origin=(0, 0, -148.8), x_dir=(-1, 0, 0), z_dir=(0, 0, -1))):
        with Locations((-96.225469503, 100.740381784)):
            Rectangle(SKETCH70_W, SKETCH70_H)
    extrude(amount=-CUT_EXTRUDE39_DEPTH, mode=Mode.SUBTRACT)


solid = cut_extrude37_piece_1.part
